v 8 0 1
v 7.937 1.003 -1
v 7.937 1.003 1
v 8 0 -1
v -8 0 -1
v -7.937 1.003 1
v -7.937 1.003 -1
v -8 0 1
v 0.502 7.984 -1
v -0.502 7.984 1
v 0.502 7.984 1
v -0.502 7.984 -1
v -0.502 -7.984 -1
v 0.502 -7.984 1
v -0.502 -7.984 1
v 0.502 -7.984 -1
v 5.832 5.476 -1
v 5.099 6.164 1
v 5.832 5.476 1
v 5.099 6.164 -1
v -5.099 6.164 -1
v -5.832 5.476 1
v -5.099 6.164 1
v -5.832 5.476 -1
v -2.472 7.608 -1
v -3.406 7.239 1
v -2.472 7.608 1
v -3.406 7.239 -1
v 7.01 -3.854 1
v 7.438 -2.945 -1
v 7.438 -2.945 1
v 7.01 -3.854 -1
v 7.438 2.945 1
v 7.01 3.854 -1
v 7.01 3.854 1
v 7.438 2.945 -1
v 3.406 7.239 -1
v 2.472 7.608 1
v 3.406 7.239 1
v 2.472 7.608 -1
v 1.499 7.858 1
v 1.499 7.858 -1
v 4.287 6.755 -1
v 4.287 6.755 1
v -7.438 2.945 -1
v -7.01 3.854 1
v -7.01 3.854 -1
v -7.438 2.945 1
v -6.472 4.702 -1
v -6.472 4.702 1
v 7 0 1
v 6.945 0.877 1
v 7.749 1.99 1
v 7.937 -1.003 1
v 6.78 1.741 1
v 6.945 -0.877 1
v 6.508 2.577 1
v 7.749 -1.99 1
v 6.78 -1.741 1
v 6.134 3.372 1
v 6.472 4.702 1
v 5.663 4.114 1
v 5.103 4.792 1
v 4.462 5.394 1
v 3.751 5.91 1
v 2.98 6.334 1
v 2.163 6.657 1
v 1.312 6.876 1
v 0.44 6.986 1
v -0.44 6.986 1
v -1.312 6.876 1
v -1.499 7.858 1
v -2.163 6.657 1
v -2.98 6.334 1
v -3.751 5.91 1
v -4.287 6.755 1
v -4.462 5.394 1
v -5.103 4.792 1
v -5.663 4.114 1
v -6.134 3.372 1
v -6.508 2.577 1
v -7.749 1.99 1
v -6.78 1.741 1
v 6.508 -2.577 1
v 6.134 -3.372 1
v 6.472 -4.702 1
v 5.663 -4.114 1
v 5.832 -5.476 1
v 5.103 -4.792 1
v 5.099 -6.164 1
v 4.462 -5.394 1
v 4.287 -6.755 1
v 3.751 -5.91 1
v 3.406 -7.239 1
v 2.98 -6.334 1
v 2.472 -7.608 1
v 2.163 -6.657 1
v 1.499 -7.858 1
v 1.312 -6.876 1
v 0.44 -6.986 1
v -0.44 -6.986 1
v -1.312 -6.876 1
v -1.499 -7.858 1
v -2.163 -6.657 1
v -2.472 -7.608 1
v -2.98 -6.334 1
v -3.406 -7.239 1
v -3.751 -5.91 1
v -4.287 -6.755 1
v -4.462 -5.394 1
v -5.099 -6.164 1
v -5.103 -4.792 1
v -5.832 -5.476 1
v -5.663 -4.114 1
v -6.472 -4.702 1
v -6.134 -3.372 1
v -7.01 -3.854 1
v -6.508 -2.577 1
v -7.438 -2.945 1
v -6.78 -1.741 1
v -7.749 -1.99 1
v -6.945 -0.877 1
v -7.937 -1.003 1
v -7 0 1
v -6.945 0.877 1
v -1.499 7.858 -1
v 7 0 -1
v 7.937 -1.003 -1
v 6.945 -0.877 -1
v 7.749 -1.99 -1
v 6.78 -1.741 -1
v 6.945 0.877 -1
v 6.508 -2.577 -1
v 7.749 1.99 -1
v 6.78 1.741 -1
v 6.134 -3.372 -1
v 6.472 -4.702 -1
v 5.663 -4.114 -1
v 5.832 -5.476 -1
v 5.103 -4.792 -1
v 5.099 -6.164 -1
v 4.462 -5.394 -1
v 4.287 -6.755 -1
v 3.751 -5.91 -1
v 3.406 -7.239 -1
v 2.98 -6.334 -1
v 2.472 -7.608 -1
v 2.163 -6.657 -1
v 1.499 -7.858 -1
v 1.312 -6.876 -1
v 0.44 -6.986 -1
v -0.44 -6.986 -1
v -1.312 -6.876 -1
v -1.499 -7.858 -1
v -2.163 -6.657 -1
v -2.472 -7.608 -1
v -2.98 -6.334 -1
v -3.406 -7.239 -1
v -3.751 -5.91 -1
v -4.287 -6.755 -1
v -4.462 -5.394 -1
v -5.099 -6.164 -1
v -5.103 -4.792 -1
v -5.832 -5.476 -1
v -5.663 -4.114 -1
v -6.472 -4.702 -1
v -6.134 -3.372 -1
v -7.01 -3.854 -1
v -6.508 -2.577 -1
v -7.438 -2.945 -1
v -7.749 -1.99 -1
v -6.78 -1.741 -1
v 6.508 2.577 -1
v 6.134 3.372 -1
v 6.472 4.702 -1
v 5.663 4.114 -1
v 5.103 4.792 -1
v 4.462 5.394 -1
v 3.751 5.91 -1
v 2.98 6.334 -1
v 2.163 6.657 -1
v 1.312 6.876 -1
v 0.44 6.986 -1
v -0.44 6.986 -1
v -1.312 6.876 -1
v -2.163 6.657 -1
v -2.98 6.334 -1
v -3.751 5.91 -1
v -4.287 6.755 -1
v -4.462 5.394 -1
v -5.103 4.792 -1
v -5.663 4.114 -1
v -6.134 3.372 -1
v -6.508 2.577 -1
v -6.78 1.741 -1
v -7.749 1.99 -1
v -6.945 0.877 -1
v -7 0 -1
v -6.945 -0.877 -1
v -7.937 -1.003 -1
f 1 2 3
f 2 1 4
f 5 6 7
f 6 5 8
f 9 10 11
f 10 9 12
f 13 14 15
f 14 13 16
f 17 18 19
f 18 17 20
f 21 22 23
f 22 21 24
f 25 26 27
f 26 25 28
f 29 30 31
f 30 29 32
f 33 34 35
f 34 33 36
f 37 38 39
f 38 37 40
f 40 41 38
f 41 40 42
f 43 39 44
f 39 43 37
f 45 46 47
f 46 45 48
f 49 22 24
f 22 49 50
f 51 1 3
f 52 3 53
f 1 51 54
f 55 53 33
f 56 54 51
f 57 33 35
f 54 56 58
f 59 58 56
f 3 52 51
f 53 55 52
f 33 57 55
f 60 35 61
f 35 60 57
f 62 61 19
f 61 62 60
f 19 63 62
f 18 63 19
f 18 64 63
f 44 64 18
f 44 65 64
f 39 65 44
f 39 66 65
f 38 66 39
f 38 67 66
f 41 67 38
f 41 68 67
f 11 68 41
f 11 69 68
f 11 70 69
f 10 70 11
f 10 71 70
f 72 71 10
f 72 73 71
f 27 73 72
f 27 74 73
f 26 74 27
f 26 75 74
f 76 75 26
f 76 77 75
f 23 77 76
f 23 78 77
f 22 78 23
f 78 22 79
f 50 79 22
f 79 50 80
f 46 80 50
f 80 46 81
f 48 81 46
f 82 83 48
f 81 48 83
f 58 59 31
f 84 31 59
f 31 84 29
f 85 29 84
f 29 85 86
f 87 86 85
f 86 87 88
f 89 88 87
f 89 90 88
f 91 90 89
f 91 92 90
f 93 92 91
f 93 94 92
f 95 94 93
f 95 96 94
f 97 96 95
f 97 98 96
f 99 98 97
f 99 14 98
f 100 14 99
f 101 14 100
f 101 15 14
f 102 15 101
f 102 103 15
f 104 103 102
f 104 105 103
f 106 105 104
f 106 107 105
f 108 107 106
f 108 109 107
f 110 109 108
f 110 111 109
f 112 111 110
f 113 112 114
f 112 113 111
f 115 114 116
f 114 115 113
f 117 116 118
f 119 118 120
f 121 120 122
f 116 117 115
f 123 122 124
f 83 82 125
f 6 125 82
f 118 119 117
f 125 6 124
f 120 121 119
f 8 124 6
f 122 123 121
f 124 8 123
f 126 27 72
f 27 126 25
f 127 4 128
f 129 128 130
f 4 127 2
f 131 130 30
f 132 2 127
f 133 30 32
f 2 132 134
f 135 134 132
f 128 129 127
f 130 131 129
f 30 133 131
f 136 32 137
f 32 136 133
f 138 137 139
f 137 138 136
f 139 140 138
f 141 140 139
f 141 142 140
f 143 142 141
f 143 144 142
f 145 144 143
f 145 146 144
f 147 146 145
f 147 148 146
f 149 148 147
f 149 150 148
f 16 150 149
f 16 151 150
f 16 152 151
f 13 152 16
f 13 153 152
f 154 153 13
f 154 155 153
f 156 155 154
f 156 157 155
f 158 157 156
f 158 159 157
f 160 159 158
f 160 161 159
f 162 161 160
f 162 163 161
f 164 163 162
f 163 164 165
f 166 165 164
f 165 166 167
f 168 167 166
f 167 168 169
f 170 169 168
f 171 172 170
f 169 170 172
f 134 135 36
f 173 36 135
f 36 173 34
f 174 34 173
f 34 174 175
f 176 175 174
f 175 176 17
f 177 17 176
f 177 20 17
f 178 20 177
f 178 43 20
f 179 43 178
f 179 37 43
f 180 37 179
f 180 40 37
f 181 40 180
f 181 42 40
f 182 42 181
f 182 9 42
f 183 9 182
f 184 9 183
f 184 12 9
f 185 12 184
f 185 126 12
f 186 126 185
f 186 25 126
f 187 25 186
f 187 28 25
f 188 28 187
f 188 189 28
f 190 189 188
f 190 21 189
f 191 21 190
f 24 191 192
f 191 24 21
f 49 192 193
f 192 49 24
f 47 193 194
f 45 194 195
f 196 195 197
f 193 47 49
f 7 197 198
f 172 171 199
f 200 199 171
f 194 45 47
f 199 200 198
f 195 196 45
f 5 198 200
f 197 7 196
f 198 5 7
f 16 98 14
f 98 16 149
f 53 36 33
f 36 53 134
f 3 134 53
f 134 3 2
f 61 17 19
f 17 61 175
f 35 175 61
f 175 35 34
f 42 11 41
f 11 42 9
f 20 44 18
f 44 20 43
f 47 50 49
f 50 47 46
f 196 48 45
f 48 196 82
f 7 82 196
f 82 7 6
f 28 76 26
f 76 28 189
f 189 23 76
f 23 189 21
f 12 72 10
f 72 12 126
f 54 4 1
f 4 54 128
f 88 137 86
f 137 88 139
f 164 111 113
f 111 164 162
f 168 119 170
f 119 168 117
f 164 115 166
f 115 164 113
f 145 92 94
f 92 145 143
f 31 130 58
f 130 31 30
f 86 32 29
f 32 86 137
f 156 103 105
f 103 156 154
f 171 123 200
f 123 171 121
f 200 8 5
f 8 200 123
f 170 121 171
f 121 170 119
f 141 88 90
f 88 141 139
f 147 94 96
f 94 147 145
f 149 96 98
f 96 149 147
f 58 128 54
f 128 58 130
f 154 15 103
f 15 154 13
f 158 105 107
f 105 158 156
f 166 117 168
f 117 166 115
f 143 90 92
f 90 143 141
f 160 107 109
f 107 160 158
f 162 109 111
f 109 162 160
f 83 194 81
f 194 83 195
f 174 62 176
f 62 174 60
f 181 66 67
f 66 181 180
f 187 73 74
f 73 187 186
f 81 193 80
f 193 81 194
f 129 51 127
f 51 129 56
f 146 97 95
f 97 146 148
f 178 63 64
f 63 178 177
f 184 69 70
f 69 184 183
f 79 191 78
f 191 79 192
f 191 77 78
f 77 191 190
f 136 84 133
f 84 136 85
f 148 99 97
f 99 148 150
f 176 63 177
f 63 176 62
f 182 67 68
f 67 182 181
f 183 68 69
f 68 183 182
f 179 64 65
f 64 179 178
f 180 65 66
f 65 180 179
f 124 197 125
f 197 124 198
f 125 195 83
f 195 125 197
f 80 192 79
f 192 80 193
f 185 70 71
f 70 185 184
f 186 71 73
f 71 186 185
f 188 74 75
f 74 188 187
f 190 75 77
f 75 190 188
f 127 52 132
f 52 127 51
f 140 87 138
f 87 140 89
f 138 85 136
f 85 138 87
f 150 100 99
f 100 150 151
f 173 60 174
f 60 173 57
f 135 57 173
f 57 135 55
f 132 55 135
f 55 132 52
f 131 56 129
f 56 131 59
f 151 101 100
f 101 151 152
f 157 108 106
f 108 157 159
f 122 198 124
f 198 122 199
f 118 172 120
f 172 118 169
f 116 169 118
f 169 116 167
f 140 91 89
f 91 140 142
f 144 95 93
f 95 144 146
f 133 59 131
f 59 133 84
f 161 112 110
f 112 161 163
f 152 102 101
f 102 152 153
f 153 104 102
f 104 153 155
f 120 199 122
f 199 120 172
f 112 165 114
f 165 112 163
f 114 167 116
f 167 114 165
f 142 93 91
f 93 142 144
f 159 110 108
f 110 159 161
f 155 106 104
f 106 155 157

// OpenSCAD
$fn = 50;


difference() {
	union() {
		translate(v = [0, 0, -1.0000000000]) {
			cylinder(h = 2, r = 8.0000000000);
		}
	}
	union() {
		translate(v = [0, 0, -100.0000000000]) {
			cylinder(h = 200, r = 7);
		}
	}
}
